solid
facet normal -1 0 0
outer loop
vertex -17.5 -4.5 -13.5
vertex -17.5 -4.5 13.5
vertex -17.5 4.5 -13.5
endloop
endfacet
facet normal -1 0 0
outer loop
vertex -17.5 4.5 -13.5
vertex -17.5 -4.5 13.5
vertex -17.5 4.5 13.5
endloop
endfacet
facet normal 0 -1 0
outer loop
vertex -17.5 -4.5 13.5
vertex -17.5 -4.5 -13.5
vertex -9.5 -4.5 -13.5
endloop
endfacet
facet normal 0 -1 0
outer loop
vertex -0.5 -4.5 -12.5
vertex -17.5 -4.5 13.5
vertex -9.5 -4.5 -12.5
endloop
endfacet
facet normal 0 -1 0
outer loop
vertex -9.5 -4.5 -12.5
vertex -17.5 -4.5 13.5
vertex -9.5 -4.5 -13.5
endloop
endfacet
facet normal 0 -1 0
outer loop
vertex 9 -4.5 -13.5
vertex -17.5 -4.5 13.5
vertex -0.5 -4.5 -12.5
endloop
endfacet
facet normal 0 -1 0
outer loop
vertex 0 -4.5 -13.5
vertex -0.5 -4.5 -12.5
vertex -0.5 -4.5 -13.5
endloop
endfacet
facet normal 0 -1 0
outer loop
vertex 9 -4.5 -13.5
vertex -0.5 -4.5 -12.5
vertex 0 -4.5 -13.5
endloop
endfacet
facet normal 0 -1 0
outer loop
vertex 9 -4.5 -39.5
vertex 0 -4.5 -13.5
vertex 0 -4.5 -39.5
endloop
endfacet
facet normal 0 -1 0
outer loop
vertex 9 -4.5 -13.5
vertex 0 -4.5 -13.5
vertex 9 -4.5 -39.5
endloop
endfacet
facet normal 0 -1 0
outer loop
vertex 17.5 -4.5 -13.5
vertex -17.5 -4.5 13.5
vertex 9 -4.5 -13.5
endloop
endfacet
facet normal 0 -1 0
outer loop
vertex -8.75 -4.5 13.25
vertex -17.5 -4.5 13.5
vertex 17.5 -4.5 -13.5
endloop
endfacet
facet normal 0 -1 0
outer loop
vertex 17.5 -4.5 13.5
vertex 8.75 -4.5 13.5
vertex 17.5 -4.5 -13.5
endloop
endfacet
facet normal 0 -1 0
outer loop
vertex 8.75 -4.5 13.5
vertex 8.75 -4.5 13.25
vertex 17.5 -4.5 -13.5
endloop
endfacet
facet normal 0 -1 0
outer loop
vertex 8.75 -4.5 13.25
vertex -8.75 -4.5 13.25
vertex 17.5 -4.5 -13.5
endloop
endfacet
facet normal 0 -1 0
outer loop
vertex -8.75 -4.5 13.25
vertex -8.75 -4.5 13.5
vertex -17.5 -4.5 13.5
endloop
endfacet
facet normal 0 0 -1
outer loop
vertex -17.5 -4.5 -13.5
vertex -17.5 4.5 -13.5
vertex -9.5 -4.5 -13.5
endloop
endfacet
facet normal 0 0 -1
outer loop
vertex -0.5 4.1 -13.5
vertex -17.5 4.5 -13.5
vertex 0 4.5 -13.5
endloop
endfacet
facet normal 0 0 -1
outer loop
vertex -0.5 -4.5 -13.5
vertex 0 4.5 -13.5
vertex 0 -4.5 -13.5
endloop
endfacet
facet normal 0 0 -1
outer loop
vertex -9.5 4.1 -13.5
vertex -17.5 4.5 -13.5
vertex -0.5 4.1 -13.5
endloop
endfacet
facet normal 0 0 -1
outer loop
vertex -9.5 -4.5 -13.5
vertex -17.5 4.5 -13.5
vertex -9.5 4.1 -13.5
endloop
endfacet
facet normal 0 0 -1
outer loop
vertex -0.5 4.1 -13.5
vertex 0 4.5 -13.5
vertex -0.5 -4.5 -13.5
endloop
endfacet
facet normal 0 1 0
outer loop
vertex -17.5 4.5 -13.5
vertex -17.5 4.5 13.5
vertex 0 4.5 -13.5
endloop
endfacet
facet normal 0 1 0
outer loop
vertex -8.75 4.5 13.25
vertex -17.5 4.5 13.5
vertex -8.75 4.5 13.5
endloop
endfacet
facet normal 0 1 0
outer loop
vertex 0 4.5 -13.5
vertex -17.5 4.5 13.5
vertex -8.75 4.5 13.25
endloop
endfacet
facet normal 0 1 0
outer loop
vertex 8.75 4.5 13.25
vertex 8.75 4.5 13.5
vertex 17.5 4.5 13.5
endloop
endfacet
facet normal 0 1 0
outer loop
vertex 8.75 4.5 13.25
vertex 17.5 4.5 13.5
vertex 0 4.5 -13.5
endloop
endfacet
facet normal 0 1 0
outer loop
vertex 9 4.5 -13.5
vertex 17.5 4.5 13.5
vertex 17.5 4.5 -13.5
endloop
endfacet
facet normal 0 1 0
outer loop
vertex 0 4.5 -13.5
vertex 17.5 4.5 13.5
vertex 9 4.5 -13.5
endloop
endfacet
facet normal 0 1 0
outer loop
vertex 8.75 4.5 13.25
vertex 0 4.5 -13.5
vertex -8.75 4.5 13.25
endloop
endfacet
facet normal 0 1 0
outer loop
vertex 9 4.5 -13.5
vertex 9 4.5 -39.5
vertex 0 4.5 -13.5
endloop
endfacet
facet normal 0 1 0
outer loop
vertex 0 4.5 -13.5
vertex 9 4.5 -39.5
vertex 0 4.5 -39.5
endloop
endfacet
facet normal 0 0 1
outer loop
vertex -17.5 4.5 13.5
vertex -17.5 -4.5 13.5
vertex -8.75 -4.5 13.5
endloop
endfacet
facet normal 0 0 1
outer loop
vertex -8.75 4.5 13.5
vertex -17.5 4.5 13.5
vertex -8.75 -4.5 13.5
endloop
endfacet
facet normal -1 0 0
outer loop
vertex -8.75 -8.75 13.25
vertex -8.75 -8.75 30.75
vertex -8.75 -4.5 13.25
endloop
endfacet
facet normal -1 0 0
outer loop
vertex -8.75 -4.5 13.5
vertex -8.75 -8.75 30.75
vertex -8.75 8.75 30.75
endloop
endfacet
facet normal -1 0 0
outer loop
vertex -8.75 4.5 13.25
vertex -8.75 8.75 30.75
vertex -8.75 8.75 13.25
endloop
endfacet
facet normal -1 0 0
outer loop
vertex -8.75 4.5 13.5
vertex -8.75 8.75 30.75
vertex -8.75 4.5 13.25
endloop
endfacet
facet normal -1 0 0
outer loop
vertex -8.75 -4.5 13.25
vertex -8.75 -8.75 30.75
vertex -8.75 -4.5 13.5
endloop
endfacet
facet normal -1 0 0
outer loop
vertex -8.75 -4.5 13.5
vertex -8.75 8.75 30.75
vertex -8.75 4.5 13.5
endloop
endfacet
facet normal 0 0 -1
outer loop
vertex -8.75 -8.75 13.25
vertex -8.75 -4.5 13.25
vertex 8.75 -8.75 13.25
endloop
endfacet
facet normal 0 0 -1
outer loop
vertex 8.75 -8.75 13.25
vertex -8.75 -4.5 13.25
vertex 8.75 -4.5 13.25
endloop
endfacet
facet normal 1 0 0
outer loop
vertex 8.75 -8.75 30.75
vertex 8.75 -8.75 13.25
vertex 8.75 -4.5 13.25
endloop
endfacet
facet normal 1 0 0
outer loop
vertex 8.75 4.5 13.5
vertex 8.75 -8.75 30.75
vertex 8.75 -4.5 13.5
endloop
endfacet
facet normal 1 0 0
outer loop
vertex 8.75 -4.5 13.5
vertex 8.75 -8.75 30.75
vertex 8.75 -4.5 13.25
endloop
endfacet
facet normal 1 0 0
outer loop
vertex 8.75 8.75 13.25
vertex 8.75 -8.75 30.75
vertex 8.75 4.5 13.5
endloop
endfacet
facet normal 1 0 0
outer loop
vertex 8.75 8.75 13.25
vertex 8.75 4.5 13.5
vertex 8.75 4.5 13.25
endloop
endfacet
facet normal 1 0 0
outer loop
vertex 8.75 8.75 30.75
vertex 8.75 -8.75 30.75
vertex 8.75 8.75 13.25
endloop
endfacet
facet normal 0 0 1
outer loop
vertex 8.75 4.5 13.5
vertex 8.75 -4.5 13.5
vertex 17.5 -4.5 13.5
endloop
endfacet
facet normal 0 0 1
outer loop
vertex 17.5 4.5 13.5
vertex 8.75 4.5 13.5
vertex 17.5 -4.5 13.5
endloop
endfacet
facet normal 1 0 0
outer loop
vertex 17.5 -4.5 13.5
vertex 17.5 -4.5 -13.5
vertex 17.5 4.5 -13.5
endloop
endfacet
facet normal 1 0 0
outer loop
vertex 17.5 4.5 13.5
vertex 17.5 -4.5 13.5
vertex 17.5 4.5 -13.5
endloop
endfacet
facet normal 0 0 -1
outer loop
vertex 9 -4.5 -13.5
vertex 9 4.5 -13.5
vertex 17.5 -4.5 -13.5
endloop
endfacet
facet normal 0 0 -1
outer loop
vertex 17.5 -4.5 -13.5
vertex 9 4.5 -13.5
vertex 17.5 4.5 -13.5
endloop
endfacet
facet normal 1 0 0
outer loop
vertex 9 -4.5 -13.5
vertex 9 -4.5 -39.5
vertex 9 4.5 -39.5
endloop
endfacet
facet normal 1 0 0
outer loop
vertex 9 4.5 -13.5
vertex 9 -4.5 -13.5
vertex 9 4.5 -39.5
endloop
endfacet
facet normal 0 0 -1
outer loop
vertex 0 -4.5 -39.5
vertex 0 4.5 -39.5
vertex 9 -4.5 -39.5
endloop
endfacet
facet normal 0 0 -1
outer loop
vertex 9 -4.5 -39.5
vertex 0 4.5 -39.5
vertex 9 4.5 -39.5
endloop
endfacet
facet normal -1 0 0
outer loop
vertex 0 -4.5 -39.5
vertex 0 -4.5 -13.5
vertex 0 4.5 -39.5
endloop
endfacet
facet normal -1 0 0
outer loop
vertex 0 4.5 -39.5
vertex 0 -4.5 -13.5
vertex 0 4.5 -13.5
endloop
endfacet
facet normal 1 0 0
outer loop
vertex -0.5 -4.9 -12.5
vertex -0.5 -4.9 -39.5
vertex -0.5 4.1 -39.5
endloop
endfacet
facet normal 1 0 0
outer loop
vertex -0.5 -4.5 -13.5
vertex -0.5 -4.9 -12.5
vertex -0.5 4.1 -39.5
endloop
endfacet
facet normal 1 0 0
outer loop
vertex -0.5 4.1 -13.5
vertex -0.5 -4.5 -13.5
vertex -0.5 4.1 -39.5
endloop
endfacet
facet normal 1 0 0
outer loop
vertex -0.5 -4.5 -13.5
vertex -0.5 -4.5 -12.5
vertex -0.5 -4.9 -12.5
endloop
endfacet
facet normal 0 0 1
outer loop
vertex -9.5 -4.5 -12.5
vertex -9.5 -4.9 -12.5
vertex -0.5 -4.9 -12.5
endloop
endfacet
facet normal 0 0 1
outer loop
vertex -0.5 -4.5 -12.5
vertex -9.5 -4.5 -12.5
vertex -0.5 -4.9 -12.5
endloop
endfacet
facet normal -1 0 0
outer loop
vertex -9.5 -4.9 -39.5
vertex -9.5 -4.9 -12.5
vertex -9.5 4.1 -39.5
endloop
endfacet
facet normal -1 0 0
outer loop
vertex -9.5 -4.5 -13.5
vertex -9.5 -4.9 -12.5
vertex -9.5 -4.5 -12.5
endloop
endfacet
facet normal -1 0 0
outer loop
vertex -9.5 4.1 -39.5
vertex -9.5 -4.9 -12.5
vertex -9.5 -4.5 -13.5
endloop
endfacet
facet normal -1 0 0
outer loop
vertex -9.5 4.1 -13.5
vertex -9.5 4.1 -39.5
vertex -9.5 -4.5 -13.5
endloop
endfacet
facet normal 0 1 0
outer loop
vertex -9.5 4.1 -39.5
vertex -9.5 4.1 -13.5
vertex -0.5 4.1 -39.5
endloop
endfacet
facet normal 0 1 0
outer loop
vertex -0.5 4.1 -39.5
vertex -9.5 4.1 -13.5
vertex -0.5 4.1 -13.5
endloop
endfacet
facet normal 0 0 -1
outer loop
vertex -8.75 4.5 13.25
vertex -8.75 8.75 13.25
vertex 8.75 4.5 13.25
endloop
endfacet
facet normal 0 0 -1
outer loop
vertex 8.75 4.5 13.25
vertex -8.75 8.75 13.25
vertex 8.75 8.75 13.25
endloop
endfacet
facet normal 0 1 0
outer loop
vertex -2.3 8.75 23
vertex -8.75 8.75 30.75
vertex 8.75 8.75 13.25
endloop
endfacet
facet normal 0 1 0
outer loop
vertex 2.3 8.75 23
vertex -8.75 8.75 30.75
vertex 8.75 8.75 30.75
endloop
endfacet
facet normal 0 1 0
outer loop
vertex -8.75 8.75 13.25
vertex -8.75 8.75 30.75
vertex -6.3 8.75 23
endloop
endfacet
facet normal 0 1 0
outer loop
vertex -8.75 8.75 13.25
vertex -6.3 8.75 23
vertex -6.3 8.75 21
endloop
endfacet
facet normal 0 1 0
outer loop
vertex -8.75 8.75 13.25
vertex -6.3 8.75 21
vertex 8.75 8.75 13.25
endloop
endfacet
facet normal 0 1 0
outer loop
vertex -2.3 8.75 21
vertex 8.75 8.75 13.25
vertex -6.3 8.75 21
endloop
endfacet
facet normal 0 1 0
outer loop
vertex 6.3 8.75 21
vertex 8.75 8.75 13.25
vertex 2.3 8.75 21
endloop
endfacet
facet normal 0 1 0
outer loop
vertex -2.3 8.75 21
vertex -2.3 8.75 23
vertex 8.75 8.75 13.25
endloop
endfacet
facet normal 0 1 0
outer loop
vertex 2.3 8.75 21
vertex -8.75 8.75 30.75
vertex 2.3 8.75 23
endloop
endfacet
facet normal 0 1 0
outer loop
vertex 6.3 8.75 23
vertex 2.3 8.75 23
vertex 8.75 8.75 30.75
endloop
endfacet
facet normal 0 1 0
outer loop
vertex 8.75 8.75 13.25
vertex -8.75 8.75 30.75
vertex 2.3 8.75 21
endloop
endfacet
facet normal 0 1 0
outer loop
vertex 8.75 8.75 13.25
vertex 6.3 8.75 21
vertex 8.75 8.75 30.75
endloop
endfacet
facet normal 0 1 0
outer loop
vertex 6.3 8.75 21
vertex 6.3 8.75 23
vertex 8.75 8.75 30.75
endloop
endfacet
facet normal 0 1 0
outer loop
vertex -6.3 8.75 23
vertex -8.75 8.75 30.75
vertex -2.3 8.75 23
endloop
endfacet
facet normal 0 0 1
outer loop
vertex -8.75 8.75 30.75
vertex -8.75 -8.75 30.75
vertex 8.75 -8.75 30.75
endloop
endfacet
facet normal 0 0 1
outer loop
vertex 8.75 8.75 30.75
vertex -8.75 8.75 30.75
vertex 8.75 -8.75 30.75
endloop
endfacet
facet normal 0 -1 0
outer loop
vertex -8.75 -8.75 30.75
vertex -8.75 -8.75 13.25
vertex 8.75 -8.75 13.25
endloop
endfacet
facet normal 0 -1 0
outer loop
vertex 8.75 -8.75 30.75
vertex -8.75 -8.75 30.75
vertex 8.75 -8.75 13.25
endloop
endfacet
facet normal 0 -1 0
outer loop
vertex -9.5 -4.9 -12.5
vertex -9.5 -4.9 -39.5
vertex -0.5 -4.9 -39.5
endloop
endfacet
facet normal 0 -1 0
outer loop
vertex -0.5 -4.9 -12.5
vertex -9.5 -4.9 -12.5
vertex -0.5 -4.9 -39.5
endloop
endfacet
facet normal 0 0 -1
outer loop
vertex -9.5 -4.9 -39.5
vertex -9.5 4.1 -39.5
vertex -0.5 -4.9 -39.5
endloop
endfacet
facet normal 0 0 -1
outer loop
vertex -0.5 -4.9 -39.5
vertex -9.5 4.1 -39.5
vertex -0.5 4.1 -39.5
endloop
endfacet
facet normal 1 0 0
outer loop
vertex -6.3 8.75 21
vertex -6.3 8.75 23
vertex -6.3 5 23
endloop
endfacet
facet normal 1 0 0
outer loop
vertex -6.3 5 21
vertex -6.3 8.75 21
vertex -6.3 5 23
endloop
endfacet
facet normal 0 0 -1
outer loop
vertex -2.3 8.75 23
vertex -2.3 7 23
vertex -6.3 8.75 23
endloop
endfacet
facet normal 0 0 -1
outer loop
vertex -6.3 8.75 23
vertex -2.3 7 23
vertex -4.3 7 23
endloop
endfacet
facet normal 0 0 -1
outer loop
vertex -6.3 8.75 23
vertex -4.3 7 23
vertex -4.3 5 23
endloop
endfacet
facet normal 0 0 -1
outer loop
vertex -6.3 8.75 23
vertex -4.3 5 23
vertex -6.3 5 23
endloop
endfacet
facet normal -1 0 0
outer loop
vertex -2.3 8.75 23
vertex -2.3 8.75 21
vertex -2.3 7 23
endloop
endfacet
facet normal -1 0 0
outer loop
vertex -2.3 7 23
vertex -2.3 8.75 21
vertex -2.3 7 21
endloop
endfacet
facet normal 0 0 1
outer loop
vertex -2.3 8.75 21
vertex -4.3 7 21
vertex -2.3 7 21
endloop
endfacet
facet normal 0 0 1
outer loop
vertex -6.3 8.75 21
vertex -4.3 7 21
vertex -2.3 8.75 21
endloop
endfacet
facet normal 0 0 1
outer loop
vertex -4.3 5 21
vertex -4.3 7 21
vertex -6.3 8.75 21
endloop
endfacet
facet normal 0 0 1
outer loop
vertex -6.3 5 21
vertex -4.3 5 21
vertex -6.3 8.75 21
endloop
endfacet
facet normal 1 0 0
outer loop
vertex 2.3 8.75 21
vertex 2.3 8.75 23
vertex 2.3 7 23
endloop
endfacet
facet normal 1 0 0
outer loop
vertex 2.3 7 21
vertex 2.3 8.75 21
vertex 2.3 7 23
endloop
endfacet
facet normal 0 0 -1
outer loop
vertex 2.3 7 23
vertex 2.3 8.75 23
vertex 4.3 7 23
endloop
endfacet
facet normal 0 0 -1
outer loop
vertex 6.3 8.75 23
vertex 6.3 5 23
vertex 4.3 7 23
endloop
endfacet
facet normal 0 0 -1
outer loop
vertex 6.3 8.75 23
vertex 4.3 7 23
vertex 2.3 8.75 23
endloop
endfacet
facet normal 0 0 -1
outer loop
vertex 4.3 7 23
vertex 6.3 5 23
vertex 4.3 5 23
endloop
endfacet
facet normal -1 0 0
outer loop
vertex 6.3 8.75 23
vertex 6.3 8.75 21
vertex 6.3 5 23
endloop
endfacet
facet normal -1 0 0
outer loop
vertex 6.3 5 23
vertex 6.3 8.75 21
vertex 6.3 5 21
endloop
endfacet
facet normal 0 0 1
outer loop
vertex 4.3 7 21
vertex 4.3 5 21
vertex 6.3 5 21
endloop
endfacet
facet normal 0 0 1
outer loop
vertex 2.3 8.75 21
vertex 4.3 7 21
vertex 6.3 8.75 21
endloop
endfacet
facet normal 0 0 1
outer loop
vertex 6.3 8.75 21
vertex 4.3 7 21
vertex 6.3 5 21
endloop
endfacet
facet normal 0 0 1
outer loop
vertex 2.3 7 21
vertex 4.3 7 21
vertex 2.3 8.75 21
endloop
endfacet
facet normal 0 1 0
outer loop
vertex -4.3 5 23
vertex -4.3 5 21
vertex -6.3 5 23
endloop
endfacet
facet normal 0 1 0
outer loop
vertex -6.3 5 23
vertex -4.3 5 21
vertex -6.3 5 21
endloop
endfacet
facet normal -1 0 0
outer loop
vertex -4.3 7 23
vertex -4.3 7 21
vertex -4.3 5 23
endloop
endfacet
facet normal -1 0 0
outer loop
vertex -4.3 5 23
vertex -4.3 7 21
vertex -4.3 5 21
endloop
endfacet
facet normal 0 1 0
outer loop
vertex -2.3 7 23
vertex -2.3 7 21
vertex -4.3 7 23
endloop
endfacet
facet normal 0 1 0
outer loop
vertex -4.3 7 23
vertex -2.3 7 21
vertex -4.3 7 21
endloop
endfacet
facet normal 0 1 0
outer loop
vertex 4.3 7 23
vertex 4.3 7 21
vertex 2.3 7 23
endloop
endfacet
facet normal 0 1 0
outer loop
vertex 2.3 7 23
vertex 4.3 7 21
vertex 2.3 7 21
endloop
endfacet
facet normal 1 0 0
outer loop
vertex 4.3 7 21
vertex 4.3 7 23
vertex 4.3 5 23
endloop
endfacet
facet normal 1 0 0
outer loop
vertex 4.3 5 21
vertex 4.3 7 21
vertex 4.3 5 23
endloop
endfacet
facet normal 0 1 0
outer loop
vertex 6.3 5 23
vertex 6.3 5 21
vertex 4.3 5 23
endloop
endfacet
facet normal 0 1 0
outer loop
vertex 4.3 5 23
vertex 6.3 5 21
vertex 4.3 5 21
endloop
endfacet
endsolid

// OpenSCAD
union(){
	difference() {
		translate([0,0,22]) cube([17.5,17.5,17.5],true);//head
	
		//left eye socket
		translate([-4.3,8,22]) cube([4,2,2],true);
		translate([-5.3,6,22]) cube([2,2,2],true);

		//right eye socket
		translate([4.3,8,22]) cube([4,2,2],true);
		translate([5.3,6,22]) cube([2,2,2],true);
	}

	cube([18,9,27],true);//body

	//right arm
	translate([13,0,0]) cube([9,9,27],true);

	//left arm
	translate([-13,0,0]) cube([9,9,27],true);

	//left leg
	translate([-5,-0.4,-26]) cube([9,9,27],true);

	//right leg
	translate([4.5,0,-26]) cube([9,9,27],true);
}
